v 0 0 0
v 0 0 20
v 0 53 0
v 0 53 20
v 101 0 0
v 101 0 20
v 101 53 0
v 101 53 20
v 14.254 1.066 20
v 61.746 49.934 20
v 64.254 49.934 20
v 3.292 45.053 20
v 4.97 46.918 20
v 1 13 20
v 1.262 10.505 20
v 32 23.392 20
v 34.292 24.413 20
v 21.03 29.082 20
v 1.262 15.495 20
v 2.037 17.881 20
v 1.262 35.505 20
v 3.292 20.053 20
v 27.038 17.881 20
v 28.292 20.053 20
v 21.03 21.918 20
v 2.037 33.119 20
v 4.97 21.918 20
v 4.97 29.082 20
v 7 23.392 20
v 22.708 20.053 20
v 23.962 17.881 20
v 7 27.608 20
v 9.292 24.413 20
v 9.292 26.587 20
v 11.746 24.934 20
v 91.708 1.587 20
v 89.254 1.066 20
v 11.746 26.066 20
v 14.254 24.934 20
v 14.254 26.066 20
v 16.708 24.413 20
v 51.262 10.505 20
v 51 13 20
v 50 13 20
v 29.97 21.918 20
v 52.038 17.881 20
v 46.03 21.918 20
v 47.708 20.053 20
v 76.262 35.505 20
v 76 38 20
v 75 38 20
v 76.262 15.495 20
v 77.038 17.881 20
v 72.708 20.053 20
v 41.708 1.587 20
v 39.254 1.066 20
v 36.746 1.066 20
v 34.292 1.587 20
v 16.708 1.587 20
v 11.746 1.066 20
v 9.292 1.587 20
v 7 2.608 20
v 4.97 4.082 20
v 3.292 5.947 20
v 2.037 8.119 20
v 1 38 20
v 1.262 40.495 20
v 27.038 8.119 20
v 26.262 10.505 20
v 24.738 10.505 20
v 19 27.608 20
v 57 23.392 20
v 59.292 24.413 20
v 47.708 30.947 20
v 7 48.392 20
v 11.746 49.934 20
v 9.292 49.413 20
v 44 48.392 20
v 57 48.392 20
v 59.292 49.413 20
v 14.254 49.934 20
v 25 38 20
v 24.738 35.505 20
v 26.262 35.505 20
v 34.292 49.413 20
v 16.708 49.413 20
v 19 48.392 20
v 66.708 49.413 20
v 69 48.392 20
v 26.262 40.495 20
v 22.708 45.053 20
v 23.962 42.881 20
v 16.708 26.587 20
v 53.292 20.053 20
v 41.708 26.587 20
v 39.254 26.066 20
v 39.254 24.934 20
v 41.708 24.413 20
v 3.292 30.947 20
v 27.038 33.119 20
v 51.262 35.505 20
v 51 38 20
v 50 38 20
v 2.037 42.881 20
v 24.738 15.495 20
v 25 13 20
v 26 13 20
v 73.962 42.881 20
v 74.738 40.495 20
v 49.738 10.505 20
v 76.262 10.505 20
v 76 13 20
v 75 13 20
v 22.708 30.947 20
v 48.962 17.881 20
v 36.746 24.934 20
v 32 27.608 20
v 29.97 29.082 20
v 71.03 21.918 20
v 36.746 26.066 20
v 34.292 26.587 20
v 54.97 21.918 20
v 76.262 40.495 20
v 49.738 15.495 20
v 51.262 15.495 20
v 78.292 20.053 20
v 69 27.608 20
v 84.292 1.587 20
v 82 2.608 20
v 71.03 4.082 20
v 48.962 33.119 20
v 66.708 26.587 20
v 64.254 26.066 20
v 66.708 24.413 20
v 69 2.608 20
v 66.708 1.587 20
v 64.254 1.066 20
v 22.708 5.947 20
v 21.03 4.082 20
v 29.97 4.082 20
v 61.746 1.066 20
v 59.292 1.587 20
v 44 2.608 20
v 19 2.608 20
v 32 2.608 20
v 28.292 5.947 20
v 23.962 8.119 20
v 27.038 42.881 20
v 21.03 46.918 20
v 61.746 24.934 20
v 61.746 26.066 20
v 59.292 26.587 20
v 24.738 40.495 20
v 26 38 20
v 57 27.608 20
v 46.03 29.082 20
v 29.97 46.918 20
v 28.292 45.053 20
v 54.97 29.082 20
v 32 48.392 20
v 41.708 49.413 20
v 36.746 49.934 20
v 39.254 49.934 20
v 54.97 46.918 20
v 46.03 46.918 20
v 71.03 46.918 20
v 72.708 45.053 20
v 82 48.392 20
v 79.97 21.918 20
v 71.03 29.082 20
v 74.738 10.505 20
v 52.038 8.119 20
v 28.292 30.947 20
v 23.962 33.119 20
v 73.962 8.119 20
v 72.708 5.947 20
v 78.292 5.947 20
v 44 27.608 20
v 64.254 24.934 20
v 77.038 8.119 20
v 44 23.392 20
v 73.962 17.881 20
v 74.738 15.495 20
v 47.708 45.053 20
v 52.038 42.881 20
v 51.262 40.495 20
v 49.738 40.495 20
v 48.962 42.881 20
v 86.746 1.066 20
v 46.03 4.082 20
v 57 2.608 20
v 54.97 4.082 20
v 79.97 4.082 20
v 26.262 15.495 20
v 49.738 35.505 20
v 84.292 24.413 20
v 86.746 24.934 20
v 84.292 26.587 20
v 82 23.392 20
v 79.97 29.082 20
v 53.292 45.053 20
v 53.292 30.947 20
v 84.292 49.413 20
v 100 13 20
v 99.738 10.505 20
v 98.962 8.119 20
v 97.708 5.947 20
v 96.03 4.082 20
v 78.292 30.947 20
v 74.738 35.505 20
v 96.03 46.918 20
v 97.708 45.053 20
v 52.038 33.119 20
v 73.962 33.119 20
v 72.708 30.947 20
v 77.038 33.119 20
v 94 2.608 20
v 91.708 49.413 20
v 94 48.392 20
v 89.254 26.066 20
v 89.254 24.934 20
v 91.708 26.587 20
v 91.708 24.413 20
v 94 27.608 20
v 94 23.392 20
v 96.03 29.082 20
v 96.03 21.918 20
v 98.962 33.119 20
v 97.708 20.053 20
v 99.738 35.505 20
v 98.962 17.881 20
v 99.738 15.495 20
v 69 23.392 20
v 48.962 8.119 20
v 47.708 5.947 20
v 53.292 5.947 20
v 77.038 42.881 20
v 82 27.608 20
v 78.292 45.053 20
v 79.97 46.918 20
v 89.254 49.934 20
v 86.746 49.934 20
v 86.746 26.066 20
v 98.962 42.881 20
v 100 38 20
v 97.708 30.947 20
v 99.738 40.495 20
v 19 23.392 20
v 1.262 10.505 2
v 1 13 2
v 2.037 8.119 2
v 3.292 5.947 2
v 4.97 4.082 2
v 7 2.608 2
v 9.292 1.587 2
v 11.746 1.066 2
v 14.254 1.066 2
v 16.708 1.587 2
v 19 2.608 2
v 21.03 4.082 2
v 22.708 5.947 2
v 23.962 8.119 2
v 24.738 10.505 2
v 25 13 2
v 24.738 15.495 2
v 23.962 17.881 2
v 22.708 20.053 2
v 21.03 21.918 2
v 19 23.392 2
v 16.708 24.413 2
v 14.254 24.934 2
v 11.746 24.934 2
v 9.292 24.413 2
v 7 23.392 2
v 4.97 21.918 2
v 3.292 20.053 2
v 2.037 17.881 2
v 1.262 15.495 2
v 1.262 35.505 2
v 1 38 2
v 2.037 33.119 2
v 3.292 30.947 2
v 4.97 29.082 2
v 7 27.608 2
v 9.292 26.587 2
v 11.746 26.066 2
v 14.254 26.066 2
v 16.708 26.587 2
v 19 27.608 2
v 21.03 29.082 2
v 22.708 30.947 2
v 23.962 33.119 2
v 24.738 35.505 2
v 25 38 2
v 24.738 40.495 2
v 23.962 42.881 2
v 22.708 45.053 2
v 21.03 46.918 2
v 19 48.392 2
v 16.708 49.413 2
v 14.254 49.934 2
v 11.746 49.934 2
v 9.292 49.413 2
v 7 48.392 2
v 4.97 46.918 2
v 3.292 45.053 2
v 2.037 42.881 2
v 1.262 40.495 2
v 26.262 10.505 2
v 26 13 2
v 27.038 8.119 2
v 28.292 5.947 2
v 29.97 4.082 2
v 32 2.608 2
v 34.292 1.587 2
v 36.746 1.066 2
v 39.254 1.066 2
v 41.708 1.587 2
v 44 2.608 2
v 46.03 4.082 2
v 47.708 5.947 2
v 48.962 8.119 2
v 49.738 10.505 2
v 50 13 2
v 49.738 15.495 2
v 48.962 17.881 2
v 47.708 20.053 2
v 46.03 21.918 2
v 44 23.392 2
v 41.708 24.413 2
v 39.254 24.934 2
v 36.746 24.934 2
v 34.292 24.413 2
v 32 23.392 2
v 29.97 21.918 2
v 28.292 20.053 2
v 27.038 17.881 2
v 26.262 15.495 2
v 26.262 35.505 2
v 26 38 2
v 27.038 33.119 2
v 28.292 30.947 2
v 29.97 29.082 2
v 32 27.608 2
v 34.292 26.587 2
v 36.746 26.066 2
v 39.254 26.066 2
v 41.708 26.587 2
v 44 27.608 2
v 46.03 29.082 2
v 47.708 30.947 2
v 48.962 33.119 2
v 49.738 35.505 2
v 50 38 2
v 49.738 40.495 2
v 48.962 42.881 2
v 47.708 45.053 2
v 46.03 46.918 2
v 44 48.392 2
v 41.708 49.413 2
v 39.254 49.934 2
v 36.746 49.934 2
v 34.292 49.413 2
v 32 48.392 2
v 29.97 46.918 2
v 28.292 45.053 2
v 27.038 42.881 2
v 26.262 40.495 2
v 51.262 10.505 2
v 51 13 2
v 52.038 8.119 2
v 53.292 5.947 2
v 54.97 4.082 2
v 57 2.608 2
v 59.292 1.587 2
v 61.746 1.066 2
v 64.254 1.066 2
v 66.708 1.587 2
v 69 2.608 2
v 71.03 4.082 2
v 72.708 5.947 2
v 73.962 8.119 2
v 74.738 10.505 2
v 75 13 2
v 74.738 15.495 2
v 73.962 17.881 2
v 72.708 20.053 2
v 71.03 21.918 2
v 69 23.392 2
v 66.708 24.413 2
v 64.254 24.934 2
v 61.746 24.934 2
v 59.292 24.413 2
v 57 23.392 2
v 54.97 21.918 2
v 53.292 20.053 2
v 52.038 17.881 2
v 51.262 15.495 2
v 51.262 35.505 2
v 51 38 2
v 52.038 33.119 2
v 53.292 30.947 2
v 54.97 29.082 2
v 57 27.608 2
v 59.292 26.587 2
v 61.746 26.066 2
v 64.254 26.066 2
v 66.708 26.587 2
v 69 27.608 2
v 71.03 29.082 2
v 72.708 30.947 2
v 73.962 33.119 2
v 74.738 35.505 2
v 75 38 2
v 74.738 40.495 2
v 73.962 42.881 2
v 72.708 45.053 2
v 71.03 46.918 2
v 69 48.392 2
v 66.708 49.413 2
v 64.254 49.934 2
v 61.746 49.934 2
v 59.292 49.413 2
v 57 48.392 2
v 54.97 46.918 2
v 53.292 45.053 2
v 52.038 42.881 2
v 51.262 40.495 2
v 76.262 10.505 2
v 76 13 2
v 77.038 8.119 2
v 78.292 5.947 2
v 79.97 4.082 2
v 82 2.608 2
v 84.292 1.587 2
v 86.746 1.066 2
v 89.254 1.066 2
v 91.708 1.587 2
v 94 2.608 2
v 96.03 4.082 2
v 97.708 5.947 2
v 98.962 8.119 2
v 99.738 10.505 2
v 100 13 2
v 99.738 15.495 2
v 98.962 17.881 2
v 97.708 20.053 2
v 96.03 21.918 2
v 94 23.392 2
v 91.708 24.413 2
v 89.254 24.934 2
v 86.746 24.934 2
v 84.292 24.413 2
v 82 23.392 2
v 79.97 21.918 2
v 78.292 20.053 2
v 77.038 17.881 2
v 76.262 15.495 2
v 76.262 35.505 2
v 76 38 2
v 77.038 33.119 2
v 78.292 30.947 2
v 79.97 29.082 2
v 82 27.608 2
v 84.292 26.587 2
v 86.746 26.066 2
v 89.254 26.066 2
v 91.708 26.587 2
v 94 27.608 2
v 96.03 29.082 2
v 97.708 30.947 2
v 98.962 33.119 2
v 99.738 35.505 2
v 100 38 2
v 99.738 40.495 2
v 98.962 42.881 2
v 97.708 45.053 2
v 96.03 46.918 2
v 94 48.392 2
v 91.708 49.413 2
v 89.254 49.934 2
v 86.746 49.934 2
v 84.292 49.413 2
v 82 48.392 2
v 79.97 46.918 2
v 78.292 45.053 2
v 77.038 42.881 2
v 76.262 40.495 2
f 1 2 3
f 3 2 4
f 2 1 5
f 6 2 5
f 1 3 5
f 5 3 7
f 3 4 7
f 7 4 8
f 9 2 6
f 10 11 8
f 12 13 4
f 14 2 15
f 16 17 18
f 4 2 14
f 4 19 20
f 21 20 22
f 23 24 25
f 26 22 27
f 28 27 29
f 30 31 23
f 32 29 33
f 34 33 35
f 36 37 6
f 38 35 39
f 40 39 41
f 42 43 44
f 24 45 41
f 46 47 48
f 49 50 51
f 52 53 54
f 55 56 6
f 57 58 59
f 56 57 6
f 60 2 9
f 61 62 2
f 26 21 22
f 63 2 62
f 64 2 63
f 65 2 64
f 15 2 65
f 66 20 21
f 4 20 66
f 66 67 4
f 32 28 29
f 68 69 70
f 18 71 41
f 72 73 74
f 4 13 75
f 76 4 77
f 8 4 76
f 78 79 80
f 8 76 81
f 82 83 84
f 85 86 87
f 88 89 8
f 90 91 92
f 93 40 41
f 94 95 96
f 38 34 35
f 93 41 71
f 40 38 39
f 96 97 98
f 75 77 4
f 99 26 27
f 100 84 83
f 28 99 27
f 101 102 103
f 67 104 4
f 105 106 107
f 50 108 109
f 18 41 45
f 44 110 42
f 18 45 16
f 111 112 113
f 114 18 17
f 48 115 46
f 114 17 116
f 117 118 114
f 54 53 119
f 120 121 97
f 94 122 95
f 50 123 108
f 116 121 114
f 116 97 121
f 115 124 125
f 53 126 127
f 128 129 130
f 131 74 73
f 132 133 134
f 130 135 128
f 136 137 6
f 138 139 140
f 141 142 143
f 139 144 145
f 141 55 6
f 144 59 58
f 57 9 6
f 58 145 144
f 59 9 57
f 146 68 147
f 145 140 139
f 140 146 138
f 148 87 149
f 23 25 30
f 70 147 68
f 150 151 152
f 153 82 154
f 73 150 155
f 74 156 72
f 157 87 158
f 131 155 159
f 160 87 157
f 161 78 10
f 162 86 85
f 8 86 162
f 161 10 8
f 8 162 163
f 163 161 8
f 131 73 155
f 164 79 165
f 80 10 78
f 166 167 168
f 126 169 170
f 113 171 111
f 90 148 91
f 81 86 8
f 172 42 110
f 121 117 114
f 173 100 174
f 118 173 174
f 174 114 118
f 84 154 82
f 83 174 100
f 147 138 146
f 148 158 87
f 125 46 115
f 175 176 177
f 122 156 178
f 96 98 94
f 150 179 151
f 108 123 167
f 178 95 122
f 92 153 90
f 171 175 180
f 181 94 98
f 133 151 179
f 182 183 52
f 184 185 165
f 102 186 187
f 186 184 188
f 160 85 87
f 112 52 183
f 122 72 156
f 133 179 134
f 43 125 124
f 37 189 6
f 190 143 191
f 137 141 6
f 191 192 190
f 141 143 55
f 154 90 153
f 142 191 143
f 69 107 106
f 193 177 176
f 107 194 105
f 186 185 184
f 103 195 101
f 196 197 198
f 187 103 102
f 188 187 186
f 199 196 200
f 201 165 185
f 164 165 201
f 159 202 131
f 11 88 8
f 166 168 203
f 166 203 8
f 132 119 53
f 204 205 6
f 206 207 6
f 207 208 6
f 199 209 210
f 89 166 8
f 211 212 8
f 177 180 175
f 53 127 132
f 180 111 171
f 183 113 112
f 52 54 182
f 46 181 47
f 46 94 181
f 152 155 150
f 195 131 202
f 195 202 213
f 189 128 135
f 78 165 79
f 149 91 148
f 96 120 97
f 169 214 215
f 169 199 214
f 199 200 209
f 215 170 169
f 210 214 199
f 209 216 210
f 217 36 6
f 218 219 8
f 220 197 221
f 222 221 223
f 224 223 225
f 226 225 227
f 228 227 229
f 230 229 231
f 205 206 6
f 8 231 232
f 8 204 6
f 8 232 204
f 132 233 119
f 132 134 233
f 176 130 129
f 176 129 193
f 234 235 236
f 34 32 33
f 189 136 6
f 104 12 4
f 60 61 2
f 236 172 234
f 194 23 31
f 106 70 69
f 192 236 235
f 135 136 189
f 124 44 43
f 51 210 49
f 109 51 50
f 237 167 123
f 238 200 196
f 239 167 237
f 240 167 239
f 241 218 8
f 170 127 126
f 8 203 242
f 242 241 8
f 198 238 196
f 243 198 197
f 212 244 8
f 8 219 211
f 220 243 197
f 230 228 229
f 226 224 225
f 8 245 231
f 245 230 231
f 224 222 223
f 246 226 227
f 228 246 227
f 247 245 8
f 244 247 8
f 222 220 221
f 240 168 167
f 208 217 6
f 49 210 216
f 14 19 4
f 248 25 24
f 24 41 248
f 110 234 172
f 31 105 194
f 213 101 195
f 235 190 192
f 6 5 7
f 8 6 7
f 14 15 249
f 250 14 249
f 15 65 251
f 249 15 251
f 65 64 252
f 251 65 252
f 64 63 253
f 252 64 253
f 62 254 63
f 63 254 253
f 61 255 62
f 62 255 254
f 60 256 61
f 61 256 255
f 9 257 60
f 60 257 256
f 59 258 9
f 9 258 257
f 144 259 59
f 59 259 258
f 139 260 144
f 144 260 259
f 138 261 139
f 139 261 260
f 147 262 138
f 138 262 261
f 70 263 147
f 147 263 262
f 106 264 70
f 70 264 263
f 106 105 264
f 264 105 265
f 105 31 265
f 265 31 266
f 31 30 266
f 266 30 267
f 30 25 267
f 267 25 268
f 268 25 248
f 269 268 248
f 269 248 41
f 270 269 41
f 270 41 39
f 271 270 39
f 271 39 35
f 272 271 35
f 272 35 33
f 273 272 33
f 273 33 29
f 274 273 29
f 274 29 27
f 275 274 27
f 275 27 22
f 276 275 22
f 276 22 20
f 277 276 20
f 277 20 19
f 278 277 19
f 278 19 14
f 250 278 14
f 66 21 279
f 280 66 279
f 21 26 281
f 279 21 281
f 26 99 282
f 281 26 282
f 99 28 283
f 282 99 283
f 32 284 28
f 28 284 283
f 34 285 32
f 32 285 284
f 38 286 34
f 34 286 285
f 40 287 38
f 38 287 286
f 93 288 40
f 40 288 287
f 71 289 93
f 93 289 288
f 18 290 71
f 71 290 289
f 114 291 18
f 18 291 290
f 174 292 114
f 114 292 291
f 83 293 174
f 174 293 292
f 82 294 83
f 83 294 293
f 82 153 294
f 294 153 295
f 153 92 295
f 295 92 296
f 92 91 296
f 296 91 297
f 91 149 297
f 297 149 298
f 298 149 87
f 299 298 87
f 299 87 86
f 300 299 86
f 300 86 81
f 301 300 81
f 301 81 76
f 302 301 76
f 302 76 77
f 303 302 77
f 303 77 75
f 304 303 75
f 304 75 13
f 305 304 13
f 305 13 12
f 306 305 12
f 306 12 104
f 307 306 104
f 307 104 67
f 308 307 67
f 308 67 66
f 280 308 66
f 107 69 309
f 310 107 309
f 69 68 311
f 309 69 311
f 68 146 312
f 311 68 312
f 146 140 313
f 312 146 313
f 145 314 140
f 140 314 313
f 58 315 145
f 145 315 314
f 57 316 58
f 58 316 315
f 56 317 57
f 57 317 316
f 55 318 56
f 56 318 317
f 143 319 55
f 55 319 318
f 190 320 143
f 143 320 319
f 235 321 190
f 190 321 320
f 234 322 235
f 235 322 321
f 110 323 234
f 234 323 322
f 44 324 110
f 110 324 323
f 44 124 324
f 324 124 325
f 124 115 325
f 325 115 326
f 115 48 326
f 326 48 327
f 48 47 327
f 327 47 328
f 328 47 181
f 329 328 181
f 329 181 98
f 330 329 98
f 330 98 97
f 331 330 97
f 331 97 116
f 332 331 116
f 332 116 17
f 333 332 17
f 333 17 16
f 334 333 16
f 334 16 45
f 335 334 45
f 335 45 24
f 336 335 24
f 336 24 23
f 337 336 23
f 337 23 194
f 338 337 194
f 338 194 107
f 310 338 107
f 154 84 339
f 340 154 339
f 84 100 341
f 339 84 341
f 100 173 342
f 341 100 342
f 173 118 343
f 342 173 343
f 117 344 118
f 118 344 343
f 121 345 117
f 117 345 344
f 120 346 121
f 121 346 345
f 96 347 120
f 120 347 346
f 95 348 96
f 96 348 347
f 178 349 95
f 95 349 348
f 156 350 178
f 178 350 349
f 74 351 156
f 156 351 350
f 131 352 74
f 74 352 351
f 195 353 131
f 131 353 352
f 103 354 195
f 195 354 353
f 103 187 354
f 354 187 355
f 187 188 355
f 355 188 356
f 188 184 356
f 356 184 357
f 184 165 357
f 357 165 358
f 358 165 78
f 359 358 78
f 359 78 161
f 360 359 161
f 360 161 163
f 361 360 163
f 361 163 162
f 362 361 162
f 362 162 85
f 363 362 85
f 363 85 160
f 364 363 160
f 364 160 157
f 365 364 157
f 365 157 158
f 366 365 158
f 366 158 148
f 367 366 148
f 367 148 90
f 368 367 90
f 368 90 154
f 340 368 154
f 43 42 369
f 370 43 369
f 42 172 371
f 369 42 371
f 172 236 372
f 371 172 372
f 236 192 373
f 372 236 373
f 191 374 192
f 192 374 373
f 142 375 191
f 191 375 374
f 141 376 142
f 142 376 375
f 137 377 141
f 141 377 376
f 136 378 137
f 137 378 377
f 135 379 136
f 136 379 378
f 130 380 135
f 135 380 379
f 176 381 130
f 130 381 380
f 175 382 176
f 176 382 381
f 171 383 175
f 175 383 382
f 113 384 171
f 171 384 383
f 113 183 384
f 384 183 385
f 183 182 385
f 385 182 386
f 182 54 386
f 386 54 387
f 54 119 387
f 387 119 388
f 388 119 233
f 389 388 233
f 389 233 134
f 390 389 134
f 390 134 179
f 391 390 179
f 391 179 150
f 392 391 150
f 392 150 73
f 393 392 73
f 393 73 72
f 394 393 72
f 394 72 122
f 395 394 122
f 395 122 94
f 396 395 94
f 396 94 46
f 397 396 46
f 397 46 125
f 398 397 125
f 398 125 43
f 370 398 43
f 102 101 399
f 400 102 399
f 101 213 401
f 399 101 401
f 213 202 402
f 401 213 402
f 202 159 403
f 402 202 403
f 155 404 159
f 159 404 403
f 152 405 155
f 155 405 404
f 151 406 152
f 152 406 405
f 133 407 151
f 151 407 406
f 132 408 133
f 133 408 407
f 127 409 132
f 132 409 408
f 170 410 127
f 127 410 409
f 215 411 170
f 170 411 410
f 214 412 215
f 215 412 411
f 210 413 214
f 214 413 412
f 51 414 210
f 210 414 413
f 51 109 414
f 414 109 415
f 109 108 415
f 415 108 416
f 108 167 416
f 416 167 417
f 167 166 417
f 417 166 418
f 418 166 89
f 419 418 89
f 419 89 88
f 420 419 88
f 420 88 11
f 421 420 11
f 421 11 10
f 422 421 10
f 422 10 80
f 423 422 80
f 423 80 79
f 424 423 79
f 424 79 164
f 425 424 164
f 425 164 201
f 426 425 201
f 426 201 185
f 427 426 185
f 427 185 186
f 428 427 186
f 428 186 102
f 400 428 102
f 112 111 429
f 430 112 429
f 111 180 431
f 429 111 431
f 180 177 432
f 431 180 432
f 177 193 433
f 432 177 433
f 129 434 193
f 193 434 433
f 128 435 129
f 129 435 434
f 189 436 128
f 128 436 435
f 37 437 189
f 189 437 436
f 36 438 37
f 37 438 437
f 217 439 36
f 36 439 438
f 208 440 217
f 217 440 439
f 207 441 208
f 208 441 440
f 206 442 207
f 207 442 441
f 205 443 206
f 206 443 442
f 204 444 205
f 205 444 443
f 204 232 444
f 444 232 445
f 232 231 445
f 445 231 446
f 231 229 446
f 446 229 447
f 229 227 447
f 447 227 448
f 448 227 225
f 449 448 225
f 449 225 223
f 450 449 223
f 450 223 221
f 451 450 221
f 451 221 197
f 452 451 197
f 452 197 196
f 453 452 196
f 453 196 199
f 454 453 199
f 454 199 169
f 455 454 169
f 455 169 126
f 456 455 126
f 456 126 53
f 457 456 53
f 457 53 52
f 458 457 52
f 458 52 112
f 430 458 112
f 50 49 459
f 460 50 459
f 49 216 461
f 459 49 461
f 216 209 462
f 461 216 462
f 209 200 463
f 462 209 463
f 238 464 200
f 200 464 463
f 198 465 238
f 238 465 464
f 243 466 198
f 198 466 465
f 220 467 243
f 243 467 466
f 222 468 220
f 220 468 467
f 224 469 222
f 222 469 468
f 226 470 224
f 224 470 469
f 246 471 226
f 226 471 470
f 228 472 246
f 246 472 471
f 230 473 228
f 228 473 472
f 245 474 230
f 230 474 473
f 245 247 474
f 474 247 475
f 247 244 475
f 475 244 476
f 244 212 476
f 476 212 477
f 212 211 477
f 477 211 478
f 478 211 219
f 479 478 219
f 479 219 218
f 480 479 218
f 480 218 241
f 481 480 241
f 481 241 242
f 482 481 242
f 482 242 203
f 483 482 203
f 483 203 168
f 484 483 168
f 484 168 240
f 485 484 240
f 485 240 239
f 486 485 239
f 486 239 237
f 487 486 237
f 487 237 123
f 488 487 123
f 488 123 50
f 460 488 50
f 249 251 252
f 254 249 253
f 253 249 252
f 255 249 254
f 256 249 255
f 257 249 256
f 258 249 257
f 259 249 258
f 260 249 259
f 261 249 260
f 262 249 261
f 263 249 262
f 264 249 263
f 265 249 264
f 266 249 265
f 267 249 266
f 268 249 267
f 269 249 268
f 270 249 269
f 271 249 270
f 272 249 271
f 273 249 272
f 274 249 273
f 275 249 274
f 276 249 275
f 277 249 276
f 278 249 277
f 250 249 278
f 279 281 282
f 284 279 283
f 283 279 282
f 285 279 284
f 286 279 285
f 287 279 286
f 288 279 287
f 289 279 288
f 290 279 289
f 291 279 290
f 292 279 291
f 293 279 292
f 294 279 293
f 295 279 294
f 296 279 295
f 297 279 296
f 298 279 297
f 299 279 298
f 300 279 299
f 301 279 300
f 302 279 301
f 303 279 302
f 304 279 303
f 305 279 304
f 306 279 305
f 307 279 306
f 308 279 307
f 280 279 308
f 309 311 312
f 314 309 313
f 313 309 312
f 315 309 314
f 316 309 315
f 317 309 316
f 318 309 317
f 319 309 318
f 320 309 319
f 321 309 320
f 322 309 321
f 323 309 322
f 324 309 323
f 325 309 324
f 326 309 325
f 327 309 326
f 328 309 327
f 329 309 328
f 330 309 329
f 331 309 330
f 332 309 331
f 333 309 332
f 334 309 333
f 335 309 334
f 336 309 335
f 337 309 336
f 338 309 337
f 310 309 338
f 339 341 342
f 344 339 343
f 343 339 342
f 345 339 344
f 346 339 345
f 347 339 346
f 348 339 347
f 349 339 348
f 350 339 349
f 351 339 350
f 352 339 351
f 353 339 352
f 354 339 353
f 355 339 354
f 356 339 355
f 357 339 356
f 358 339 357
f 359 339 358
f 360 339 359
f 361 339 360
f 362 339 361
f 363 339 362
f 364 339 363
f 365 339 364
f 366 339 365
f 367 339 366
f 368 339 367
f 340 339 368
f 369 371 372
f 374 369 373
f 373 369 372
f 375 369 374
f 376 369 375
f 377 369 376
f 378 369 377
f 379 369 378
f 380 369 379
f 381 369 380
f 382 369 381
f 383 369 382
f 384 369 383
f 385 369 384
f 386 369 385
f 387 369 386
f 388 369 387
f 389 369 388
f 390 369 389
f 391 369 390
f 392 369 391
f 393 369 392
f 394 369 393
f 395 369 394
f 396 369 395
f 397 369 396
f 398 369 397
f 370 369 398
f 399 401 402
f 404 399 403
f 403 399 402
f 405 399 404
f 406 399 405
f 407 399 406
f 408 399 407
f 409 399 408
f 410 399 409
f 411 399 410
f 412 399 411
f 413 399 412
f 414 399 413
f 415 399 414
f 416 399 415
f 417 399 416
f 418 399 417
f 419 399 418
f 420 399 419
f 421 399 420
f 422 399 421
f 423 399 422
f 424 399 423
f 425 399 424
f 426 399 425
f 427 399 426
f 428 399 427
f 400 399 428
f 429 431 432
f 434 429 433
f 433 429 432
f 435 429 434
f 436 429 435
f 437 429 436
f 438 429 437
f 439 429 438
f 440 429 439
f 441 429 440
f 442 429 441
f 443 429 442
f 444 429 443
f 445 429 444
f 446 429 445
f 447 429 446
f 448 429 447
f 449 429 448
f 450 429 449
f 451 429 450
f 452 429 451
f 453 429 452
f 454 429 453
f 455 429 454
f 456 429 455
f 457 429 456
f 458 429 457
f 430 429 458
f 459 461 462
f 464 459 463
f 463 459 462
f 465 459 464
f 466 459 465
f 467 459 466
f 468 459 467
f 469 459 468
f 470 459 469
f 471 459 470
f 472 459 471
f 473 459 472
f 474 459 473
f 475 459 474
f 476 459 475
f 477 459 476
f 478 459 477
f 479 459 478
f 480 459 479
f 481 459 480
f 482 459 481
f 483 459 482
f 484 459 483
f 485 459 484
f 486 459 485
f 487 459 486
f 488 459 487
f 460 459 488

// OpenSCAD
hole_radius = 12;
hole_height = 18;
height = 20;
distance = 1;

holes_per_row = 4;
holes_per_column = 2;

size_row = holes_per_row * (2 * hole_radius) + (holes_per_row + 1) * distance;
size_column = holes_per_column * (2 * hole_radius) + (holes_per_row + 1) * distance;

//size = 85;

difference() {
	cube([size_row, size_column, height]);
	translate([hole_radius + distance, hole_radius + distance, 0]) {
		for (i = [0 : holes_per_row - 1]) {
			for (j = [0 : holes_per_column - 1]) {
				translate([i * (2 * hole_radius + distance), j * (2 * hole_radius + distance), height - hole_height]) {cylinder(hole_height, r=hole_radius);}
			}
		}
	}
}
